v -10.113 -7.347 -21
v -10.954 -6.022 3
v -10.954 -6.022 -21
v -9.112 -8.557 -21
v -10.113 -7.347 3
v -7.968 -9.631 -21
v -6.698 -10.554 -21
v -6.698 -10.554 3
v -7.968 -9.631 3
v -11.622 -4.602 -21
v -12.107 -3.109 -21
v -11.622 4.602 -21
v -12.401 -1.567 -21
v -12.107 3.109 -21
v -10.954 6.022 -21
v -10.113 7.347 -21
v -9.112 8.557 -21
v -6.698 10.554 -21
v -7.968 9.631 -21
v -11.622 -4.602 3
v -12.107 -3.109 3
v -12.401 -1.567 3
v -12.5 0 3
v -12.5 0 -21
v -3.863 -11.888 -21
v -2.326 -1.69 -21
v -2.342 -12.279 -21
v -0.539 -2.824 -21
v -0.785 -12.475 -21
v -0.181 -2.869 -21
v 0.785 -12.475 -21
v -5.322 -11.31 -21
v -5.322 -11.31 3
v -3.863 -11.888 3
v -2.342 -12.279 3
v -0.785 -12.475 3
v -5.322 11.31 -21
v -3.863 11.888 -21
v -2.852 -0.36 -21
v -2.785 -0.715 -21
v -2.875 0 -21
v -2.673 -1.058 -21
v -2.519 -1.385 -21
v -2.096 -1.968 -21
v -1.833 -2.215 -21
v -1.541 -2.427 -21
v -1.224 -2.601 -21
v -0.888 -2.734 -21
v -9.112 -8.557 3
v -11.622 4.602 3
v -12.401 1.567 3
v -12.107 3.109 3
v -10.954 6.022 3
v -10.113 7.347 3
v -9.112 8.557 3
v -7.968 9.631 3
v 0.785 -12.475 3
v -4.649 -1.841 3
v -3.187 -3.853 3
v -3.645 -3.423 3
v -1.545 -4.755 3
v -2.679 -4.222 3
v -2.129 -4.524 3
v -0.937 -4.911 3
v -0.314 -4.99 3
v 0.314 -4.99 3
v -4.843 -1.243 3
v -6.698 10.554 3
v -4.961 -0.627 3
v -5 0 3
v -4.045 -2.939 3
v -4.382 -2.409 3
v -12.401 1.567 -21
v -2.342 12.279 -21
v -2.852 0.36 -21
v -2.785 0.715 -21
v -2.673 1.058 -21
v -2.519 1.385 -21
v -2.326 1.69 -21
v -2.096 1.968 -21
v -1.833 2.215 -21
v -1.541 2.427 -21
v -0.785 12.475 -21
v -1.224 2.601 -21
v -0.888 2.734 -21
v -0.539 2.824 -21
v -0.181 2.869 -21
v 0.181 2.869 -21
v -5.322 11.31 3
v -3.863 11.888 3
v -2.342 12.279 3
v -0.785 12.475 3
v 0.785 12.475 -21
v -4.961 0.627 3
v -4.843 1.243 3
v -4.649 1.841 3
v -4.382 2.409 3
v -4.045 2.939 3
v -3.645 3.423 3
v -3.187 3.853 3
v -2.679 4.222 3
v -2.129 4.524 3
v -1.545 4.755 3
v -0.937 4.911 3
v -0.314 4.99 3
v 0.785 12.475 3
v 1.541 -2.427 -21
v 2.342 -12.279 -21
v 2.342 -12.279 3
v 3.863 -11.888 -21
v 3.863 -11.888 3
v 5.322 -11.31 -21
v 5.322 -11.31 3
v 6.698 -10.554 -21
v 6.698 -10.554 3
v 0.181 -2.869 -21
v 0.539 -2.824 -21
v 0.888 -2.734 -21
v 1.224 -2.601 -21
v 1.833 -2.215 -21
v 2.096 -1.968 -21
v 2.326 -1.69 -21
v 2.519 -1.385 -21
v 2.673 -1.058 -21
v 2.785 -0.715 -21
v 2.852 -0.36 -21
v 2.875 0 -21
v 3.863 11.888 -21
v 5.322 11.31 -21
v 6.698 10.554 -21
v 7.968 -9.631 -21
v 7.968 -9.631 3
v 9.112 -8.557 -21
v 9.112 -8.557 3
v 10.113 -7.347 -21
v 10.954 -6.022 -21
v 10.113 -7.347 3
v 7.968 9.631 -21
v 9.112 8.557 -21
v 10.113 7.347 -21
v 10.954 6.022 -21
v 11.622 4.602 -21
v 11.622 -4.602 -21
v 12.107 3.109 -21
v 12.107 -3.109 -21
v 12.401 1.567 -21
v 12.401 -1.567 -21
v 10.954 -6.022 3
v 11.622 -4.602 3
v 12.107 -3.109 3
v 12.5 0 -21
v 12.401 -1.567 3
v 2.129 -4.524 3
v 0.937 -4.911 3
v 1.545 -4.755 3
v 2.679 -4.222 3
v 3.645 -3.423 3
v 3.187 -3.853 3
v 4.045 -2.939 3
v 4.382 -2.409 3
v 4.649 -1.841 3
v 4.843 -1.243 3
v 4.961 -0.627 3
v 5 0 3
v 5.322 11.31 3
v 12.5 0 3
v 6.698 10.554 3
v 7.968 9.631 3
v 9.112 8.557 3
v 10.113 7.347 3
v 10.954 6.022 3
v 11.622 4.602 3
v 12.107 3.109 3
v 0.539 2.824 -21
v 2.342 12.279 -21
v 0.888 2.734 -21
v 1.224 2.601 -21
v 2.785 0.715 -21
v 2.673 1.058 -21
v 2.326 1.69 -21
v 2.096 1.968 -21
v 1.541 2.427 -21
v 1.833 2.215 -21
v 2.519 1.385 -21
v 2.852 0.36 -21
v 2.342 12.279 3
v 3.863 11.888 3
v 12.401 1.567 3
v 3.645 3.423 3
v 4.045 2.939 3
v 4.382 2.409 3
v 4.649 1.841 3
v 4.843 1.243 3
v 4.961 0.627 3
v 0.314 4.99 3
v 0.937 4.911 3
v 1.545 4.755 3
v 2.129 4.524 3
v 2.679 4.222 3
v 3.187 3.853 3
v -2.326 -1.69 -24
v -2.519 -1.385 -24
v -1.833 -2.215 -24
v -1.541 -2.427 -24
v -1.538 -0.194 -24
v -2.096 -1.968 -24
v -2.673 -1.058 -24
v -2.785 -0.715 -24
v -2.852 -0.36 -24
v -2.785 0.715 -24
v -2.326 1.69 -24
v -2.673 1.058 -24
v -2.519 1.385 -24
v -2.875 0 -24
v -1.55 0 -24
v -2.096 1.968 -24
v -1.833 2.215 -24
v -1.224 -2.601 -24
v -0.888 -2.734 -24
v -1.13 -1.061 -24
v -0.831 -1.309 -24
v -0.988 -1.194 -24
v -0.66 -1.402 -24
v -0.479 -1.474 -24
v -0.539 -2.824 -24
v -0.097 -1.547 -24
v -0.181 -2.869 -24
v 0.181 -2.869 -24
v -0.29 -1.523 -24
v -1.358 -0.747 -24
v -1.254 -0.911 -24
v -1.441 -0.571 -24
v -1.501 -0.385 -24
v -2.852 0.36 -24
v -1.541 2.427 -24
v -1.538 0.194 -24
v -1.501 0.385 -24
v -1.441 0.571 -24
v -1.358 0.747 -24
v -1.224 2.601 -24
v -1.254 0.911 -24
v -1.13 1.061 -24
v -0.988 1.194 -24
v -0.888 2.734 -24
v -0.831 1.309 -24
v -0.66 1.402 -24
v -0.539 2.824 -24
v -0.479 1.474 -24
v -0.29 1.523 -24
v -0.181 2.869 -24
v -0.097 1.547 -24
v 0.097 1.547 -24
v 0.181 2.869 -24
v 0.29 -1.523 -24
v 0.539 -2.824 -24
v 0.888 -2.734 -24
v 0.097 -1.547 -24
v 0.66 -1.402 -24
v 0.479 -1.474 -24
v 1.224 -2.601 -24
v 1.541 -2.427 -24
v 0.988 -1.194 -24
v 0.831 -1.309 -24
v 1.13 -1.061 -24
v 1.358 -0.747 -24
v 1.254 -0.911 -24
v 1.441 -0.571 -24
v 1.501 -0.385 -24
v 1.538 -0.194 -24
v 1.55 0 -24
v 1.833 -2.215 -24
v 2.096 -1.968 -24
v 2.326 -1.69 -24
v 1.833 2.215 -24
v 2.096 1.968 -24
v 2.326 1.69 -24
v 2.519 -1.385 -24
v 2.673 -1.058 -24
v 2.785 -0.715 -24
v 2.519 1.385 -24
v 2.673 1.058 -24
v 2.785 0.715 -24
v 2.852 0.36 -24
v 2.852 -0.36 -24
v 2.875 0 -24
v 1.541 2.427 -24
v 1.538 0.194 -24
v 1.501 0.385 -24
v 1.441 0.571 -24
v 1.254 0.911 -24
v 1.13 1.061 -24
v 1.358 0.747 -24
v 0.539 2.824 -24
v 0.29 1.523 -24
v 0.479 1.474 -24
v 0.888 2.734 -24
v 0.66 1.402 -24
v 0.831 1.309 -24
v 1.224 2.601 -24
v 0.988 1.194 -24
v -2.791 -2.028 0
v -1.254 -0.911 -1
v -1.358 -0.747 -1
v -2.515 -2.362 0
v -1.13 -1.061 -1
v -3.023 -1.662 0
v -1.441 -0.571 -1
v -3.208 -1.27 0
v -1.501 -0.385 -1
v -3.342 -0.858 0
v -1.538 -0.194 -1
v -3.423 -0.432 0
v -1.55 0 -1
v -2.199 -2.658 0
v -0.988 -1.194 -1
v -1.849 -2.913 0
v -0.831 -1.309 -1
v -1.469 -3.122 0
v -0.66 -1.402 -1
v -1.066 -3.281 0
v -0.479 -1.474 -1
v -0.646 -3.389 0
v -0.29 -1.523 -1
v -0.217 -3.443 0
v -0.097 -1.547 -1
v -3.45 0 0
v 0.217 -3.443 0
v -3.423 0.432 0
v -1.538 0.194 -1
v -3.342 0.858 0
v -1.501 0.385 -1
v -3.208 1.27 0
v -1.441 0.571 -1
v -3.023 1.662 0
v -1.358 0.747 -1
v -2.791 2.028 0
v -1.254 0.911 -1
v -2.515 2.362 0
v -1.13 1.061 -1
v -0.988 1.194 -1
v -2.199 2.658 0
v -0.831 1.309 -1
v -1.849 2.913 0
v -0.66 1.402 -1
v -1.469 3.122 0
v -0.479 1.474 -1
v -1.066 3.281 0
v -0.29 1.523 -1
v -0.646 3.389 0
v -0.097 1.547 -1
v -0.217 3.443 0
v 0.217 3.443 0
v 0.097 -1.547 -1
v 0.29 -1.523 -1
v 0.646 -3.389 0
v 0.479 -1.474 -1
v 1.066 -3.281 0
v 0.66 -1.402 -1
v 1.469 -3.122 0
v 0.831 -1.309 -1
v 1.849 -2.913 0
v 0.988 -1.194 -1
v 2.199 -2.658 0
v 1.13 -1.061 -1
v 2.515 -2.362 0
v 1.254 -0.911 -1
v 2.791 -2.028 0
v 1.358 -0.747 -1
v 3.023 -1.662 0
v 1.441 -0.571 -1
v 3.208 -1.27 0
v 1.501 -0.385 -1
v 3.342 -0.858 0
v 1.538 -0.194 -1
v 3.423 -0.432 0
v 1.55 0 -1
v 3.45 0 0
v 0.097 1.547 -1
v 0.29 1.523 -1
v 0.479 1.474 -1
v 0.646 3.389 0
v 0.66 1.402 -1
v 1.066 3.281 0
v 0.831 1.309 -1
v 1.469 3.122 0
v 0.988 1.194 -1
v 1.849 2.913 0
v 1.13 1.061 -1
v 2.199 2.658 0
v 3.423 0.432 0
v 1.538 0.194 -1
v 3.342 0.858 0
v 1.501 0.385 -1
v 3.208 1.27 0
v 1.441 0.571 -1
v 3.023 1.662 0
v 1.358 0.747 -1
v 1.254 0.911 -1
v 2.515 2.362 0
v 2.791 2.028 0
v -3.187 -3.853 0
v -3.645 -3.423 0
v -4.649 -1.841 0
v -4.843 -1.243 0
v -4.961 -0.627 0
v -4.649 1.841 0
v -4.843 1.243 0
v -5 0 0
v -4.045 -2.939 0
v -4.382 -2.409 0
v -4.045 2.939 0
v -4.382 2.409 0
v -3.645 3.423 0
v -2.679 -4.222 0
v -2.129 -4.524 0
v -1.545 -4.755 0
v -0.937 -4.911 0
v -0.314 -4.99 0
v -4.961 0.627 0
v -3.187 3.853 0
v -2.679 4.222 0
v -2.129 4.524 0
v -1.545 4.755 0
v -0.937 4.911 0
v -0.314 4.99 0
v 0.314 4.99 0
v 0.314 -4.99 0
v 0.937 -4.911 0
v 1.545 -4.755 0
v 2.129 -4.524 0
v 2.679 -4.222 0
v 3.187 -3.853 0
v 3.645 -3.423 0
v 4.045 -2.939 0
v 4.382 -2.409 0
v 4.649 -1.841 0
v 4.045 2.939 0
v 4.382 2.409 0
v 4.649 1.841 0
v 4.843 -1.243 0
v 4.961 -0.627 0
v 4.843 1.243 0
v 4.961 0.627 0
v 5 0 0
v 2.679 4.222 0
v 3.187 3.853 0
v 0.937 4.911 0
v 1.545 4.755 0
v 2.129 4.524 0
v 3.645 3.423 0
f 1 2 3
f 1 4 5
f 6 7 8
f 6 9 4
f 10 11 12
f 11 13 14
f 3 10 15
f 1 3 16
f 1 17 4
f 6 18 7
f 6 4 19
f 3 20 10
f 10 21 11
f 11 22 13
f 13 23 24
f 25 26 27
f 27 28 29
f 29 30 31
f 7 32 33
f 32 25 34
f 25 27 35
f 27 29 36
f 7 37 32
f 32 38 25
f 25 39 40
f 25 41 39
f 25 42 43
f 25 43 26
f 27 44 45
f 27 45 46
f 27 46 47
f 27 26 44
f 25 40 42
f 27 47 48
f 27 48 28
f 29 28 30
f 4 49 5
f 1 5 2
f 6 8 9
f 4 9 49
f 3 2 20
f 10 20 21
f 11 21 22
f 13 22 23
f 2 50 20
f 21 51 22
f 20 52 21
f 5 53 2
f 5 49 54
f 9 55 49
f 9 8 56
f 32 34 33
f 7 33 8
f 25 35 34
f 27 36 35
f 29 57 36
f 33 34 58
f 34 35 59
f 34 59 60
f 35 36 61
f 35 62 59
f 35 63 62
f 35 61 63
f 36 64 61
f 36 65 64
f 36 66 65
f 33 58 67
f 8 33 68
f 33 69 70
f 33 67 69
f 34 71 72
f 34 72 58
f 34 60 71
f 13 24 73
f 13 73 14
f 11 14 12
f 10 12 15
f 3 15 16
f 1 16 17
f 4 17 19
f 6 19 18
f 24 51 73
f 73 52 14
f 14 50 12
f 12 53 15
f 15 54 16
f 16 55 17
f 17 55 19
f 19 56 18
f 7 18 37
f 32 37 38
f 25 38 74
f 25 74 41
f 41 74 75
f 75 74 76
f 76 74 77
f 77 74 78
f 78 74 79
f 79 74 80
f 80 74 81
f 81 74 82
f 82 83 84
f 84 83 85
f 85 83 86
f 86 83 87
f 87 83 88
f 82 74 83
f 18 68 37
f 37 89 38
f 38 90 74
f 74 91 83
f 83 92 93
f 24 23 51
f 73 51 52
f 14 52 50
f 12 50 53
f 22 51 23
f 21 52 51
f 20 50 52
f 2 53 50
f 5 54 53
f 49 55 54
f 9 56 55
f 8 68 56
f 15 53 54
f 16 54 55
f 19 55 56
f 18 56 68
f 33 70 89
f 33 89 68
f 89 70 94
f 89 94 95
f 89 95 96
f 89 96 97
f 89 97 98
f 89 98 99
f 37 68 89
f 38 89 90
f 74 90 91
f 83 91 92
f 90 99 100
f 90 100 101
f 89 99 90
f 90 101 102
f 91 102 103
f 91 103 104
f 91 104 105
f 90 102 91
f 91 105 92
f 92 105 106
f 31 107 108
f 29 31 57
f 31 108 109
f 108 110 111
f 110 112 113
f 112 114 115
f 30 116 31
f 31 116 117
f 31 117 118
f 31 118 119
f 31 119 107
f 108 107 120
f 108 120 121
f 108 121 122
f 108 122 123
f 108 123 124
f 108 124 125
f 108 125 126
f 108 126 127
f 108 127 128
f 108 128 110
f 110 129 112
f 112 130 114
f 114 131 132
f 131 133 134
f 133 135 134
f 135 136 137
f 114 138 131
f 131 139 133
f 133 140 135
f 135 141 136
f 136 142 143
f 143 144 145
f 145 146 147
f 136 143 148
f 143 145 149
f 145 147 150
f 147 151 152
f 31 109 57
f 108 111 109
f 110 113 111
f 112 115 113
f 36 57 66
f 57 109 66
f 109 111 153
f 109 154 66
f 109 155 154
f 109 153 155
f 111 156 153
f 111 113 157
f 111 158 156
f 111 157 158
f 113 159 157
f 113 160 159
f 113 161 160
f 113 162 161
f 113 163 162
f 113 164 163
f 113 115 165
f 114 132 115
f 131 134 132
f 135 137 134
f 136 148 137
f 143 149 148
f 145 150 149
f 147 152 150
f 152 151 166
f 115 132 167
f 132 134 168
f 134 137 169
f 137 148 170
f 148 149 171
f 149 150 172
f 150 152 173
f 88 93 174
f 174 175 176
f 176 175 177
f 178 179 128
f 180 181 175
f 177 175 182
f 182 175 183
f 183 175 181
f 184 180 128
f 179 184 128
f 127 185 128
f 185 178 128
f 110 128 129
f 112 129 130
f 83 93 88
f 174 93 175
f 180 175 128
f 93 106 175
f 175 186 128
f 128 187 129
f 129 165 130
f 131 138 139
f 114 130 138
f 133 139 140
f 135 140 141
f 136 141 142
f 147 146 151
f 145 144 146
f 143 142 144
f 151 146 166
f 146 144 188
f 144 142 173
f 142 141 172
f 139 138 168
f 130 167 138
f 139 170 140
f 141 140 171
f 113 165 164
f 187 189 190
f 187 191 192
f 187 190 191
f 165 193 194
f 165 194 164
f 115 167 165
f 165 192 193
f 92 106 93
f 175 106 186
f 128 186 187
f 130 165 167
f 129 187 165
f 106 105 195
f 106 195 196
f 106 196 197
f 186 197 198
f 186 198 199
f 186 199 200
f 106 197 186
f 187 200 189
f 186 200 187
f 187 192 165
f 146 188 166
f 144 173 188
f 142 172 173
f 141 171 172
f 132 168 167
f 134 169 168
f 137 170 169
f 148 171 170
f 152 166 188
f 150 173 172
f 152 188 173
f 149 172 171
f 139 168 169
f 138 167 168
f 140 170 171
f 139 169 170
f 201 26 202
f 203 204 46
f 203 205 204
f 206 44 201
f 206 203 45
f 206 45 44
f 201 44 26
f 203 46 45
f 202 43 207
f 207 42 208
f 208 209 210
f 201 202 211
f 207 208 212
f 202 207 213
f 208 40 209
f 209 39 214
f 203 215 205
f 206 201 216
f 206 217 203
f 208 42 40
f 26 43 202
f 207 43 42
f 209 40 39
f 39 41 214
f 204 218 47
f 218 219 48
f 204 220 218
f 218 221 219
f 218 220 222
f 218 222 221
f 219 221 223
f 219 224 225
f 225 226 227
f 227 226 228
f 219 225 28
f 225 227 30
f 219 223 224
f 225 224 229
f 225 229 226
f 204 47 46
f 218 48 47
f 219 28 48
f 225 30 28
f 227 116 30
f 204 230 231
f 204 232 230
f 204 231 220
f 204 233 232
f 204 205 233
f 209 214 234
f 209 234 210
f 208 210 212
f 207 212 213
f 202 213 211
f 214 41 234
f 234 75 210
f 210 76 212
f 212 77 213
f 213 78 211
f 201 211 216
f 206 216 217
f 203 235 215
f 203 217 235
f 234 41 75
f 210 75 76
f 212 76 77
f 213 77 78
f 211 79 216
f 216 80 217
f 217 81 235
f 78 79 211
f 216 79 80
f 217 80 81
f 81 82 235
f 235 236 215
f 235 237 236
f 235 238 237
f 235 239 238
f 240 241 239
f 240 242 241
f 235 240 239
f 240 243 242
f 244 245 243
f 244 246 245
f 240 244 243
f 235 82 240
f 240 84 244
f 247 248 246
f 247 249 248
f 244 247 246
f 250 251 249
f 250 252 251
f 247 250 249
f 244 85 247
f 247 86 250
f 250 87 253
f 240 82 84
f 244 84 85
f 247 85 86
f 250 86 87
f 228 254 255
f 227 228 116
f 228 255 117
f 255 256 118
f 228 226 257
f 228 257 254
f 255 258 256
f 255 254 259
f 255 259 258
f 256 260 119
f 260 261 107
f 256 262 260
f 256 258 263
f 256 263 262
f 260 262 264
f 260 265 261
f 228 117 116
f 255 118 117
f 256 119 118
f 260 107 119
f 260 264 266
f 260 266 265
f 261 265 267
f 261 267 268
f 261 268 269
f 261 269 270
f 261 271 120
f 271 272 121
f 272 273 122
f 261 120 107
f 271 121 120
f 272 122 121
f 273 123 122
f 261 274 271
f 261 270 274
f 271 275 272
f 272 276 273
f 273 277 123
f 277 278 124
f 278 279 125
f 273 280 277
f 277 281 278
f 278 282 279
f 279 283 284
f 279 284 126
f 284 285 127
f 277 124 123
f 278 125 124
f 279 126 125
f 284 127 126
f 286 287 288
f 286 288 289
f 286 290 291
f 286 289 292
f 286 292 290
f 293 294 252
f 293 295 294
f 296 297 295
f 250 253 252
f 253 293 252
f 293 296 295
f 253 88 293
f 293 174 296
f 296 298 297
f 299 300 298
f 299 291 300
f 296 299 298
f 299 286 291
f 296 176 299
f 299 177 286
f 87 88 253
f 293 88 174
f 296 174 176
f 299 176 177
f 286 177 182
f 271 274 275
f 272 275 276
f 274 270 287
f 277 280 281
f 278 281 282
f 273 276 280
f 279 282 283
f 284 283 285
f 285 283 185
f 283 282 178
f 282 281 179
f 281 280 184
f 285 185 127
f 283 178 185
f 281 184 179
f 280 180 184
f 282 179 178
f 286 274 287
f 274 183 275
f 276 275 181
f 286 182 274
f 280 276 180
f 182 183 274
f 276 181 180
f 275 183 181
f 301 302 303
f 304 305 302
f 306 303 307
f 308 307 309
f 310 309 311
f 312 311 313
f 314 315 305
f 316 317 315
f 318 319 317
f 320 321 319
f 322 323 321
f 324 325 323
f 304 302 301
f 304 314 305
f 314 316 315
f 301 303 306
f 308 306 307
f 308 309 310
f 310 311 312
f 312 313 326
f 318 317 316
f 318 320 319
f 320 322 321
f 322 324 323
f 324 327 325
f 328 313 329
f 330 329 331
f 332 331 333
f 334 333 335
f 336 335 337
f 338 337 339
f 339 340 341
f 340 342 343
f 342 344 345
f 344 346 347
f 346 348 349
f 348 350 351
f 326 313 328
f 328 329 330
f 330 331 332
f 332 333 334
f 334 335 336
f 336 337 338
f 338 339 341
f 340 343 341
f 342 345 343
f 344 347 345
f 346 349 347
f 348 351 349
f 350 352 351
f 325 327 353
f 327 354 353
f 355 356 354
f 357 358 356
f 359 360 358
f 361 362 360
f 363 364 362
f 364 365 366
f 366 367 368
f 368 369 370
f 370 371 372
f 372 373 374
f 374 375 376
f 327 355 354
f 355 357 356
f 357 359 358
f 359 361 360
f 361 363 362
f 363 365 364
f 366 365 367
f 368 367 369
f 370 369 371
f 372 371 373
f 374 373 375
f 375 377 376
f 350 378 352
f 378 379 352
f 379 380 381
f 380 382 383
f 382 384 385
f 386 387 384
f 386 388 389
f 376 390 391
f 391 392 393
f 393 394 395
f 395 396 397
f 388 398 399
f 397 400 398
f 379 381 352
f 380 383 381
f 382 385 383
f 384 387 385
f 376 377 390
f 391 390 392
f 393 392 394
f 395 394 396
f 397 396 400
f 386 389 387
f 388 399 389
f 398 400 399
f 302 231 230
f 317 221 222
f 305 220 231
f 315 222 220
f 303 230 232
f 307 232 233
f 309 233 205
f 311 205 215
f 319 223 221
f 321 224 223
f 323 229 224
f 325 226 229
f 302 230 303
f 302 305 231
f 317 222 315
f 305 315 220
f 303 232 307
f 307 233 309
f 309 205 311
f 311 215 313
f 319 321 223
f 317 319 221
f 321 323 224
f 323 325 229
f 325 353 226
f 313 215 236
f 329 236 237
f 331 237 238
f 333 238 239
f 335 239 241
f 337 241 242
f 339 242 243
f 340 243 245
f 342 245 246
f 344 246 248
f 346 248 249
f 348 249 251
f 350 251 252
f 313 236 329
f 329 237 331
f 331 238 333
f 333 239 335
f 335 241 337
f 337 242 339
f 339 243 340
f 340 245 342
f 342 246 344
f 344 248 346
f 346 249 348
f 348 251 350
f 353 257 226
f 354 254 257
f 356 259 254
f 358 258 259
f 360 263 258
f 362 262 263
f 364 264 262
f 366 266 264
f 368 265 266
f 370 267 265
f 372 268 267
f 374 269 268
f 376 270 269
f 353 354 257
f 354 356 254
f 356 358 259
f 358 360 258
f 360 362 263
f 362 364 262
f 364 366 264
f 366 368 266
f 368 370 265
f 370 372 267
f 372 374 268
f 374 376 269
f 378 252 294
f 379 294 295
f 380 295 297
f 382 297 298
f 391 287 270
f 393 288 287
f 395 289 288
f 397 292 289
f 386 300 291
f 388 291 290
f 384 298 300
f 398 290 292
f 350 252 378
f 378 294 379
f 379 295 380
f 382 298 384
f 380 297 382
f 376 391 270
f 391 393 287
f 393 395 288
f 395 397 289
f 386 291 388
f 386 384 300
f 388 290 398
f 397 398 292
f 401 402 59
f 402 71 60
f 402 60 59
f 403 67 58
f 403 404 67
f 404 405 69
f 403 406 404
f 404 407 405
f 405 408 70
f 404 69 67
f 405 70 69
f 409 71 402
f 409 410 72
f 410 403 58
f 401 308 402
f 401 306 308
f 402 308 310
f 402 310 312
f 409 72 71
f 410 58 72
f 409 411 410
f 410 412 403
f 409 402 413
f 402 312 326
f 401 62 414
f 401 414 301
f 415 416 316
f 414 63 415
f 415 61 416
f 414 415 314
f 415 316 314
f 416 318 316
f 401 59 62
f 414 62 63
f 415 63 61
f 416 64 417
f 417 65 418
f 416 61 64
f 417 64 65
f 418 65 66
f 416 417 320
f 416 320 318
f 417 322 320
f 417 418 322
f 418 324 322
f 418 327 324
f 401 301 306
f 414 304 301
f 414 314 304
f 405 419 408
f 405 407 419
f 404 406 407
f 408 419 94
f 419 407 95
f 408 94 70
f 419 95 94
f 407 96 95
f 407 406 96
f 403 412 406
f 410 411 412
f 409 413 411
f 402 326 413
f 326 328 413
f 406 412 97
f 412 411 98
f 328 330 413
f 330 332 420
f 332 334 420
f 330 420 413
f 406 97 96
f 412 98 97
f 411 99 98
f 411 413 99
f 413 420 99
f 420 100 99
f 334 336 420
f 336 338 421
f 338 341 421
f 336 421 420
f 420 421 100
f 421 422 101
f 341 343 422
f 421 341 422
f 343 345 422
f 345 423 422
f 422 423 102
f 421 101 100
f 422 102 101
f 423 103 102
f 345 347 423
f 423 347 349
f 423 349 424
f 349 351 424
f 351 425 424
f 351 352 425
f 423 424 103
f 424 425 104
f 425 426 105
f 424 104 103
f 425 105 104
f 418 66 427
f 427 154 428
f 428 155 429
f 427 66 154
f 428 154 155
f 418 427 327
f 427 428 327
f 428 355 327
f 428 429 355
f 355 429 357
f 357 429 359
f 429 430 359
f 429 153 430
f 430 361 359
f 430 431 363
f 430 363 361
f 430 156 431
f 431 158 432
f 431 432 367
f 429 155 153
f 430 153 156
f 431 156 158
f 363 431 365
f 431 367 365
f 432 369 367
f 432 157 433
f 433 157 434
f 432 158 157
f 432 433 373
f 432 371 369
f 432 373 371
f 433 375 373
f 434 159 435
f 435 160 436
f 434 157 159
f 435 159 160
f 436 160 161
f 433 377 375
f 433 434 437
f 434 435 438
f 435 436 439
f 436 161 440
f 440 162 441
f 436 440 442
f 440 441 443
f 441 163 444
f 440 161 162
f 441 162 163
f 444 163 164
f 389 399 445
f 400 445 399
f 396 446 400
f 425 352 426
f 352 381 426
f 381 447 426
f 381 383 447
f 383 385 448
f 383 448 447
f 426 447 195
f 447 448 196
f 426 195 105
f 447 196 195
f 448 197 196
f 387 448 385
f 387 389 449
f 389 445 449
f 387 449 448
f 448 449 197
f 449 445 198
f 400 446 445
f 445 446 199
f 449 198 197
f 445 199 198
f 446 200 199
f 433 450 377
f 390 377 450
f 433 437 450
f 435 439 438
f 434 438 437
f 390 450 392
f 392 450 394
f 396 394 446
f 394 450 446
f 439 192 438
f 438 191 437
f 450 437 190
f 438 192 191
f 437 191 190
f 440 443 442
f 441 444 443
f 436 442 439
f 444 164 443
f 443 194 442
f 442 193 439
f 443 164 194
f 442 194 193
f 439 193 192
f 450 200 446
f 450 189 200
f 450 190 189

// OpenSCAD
$fn = 50;


difference() {
	union() {
		translate(v = [0, 0, -21.0000000000]) {
			cylinder(h = 24, r = 12.5000000000);
		}
		#translate(v = [0, 0, -24.0000000000]) {
			cylinder(h = 24, r = 2.8750000000);
		}
	}
	union() {
		translate(v = [0, 0, 0]) {
			rotate(a = [0, 0, 0]) {
				difference() {
					union() {
						translate(v = [0, 0, -24.0000000000]) {
							cylinder(h = 24, r = 1.2500000000);
						}
						translate(v = [0, 0, -1.0000000000]) {
							cylinder(h = 1.0000000000, r1 = 1.5500000000, r2 = 3.4500000000);
						}
						translate(v = [0, 0, -24.0000000000]) {
							cylinder(h = 24, r = 1.5500000000);
						}
						translate(v = [0, 0, -24.0000000000]) {
							cylinder(h = 24, r = 1.2500000000);
						}
					}
					union();
				}
			}
		}
		#cylinder(h = 3, r = 5.0000000000);
	}
}
